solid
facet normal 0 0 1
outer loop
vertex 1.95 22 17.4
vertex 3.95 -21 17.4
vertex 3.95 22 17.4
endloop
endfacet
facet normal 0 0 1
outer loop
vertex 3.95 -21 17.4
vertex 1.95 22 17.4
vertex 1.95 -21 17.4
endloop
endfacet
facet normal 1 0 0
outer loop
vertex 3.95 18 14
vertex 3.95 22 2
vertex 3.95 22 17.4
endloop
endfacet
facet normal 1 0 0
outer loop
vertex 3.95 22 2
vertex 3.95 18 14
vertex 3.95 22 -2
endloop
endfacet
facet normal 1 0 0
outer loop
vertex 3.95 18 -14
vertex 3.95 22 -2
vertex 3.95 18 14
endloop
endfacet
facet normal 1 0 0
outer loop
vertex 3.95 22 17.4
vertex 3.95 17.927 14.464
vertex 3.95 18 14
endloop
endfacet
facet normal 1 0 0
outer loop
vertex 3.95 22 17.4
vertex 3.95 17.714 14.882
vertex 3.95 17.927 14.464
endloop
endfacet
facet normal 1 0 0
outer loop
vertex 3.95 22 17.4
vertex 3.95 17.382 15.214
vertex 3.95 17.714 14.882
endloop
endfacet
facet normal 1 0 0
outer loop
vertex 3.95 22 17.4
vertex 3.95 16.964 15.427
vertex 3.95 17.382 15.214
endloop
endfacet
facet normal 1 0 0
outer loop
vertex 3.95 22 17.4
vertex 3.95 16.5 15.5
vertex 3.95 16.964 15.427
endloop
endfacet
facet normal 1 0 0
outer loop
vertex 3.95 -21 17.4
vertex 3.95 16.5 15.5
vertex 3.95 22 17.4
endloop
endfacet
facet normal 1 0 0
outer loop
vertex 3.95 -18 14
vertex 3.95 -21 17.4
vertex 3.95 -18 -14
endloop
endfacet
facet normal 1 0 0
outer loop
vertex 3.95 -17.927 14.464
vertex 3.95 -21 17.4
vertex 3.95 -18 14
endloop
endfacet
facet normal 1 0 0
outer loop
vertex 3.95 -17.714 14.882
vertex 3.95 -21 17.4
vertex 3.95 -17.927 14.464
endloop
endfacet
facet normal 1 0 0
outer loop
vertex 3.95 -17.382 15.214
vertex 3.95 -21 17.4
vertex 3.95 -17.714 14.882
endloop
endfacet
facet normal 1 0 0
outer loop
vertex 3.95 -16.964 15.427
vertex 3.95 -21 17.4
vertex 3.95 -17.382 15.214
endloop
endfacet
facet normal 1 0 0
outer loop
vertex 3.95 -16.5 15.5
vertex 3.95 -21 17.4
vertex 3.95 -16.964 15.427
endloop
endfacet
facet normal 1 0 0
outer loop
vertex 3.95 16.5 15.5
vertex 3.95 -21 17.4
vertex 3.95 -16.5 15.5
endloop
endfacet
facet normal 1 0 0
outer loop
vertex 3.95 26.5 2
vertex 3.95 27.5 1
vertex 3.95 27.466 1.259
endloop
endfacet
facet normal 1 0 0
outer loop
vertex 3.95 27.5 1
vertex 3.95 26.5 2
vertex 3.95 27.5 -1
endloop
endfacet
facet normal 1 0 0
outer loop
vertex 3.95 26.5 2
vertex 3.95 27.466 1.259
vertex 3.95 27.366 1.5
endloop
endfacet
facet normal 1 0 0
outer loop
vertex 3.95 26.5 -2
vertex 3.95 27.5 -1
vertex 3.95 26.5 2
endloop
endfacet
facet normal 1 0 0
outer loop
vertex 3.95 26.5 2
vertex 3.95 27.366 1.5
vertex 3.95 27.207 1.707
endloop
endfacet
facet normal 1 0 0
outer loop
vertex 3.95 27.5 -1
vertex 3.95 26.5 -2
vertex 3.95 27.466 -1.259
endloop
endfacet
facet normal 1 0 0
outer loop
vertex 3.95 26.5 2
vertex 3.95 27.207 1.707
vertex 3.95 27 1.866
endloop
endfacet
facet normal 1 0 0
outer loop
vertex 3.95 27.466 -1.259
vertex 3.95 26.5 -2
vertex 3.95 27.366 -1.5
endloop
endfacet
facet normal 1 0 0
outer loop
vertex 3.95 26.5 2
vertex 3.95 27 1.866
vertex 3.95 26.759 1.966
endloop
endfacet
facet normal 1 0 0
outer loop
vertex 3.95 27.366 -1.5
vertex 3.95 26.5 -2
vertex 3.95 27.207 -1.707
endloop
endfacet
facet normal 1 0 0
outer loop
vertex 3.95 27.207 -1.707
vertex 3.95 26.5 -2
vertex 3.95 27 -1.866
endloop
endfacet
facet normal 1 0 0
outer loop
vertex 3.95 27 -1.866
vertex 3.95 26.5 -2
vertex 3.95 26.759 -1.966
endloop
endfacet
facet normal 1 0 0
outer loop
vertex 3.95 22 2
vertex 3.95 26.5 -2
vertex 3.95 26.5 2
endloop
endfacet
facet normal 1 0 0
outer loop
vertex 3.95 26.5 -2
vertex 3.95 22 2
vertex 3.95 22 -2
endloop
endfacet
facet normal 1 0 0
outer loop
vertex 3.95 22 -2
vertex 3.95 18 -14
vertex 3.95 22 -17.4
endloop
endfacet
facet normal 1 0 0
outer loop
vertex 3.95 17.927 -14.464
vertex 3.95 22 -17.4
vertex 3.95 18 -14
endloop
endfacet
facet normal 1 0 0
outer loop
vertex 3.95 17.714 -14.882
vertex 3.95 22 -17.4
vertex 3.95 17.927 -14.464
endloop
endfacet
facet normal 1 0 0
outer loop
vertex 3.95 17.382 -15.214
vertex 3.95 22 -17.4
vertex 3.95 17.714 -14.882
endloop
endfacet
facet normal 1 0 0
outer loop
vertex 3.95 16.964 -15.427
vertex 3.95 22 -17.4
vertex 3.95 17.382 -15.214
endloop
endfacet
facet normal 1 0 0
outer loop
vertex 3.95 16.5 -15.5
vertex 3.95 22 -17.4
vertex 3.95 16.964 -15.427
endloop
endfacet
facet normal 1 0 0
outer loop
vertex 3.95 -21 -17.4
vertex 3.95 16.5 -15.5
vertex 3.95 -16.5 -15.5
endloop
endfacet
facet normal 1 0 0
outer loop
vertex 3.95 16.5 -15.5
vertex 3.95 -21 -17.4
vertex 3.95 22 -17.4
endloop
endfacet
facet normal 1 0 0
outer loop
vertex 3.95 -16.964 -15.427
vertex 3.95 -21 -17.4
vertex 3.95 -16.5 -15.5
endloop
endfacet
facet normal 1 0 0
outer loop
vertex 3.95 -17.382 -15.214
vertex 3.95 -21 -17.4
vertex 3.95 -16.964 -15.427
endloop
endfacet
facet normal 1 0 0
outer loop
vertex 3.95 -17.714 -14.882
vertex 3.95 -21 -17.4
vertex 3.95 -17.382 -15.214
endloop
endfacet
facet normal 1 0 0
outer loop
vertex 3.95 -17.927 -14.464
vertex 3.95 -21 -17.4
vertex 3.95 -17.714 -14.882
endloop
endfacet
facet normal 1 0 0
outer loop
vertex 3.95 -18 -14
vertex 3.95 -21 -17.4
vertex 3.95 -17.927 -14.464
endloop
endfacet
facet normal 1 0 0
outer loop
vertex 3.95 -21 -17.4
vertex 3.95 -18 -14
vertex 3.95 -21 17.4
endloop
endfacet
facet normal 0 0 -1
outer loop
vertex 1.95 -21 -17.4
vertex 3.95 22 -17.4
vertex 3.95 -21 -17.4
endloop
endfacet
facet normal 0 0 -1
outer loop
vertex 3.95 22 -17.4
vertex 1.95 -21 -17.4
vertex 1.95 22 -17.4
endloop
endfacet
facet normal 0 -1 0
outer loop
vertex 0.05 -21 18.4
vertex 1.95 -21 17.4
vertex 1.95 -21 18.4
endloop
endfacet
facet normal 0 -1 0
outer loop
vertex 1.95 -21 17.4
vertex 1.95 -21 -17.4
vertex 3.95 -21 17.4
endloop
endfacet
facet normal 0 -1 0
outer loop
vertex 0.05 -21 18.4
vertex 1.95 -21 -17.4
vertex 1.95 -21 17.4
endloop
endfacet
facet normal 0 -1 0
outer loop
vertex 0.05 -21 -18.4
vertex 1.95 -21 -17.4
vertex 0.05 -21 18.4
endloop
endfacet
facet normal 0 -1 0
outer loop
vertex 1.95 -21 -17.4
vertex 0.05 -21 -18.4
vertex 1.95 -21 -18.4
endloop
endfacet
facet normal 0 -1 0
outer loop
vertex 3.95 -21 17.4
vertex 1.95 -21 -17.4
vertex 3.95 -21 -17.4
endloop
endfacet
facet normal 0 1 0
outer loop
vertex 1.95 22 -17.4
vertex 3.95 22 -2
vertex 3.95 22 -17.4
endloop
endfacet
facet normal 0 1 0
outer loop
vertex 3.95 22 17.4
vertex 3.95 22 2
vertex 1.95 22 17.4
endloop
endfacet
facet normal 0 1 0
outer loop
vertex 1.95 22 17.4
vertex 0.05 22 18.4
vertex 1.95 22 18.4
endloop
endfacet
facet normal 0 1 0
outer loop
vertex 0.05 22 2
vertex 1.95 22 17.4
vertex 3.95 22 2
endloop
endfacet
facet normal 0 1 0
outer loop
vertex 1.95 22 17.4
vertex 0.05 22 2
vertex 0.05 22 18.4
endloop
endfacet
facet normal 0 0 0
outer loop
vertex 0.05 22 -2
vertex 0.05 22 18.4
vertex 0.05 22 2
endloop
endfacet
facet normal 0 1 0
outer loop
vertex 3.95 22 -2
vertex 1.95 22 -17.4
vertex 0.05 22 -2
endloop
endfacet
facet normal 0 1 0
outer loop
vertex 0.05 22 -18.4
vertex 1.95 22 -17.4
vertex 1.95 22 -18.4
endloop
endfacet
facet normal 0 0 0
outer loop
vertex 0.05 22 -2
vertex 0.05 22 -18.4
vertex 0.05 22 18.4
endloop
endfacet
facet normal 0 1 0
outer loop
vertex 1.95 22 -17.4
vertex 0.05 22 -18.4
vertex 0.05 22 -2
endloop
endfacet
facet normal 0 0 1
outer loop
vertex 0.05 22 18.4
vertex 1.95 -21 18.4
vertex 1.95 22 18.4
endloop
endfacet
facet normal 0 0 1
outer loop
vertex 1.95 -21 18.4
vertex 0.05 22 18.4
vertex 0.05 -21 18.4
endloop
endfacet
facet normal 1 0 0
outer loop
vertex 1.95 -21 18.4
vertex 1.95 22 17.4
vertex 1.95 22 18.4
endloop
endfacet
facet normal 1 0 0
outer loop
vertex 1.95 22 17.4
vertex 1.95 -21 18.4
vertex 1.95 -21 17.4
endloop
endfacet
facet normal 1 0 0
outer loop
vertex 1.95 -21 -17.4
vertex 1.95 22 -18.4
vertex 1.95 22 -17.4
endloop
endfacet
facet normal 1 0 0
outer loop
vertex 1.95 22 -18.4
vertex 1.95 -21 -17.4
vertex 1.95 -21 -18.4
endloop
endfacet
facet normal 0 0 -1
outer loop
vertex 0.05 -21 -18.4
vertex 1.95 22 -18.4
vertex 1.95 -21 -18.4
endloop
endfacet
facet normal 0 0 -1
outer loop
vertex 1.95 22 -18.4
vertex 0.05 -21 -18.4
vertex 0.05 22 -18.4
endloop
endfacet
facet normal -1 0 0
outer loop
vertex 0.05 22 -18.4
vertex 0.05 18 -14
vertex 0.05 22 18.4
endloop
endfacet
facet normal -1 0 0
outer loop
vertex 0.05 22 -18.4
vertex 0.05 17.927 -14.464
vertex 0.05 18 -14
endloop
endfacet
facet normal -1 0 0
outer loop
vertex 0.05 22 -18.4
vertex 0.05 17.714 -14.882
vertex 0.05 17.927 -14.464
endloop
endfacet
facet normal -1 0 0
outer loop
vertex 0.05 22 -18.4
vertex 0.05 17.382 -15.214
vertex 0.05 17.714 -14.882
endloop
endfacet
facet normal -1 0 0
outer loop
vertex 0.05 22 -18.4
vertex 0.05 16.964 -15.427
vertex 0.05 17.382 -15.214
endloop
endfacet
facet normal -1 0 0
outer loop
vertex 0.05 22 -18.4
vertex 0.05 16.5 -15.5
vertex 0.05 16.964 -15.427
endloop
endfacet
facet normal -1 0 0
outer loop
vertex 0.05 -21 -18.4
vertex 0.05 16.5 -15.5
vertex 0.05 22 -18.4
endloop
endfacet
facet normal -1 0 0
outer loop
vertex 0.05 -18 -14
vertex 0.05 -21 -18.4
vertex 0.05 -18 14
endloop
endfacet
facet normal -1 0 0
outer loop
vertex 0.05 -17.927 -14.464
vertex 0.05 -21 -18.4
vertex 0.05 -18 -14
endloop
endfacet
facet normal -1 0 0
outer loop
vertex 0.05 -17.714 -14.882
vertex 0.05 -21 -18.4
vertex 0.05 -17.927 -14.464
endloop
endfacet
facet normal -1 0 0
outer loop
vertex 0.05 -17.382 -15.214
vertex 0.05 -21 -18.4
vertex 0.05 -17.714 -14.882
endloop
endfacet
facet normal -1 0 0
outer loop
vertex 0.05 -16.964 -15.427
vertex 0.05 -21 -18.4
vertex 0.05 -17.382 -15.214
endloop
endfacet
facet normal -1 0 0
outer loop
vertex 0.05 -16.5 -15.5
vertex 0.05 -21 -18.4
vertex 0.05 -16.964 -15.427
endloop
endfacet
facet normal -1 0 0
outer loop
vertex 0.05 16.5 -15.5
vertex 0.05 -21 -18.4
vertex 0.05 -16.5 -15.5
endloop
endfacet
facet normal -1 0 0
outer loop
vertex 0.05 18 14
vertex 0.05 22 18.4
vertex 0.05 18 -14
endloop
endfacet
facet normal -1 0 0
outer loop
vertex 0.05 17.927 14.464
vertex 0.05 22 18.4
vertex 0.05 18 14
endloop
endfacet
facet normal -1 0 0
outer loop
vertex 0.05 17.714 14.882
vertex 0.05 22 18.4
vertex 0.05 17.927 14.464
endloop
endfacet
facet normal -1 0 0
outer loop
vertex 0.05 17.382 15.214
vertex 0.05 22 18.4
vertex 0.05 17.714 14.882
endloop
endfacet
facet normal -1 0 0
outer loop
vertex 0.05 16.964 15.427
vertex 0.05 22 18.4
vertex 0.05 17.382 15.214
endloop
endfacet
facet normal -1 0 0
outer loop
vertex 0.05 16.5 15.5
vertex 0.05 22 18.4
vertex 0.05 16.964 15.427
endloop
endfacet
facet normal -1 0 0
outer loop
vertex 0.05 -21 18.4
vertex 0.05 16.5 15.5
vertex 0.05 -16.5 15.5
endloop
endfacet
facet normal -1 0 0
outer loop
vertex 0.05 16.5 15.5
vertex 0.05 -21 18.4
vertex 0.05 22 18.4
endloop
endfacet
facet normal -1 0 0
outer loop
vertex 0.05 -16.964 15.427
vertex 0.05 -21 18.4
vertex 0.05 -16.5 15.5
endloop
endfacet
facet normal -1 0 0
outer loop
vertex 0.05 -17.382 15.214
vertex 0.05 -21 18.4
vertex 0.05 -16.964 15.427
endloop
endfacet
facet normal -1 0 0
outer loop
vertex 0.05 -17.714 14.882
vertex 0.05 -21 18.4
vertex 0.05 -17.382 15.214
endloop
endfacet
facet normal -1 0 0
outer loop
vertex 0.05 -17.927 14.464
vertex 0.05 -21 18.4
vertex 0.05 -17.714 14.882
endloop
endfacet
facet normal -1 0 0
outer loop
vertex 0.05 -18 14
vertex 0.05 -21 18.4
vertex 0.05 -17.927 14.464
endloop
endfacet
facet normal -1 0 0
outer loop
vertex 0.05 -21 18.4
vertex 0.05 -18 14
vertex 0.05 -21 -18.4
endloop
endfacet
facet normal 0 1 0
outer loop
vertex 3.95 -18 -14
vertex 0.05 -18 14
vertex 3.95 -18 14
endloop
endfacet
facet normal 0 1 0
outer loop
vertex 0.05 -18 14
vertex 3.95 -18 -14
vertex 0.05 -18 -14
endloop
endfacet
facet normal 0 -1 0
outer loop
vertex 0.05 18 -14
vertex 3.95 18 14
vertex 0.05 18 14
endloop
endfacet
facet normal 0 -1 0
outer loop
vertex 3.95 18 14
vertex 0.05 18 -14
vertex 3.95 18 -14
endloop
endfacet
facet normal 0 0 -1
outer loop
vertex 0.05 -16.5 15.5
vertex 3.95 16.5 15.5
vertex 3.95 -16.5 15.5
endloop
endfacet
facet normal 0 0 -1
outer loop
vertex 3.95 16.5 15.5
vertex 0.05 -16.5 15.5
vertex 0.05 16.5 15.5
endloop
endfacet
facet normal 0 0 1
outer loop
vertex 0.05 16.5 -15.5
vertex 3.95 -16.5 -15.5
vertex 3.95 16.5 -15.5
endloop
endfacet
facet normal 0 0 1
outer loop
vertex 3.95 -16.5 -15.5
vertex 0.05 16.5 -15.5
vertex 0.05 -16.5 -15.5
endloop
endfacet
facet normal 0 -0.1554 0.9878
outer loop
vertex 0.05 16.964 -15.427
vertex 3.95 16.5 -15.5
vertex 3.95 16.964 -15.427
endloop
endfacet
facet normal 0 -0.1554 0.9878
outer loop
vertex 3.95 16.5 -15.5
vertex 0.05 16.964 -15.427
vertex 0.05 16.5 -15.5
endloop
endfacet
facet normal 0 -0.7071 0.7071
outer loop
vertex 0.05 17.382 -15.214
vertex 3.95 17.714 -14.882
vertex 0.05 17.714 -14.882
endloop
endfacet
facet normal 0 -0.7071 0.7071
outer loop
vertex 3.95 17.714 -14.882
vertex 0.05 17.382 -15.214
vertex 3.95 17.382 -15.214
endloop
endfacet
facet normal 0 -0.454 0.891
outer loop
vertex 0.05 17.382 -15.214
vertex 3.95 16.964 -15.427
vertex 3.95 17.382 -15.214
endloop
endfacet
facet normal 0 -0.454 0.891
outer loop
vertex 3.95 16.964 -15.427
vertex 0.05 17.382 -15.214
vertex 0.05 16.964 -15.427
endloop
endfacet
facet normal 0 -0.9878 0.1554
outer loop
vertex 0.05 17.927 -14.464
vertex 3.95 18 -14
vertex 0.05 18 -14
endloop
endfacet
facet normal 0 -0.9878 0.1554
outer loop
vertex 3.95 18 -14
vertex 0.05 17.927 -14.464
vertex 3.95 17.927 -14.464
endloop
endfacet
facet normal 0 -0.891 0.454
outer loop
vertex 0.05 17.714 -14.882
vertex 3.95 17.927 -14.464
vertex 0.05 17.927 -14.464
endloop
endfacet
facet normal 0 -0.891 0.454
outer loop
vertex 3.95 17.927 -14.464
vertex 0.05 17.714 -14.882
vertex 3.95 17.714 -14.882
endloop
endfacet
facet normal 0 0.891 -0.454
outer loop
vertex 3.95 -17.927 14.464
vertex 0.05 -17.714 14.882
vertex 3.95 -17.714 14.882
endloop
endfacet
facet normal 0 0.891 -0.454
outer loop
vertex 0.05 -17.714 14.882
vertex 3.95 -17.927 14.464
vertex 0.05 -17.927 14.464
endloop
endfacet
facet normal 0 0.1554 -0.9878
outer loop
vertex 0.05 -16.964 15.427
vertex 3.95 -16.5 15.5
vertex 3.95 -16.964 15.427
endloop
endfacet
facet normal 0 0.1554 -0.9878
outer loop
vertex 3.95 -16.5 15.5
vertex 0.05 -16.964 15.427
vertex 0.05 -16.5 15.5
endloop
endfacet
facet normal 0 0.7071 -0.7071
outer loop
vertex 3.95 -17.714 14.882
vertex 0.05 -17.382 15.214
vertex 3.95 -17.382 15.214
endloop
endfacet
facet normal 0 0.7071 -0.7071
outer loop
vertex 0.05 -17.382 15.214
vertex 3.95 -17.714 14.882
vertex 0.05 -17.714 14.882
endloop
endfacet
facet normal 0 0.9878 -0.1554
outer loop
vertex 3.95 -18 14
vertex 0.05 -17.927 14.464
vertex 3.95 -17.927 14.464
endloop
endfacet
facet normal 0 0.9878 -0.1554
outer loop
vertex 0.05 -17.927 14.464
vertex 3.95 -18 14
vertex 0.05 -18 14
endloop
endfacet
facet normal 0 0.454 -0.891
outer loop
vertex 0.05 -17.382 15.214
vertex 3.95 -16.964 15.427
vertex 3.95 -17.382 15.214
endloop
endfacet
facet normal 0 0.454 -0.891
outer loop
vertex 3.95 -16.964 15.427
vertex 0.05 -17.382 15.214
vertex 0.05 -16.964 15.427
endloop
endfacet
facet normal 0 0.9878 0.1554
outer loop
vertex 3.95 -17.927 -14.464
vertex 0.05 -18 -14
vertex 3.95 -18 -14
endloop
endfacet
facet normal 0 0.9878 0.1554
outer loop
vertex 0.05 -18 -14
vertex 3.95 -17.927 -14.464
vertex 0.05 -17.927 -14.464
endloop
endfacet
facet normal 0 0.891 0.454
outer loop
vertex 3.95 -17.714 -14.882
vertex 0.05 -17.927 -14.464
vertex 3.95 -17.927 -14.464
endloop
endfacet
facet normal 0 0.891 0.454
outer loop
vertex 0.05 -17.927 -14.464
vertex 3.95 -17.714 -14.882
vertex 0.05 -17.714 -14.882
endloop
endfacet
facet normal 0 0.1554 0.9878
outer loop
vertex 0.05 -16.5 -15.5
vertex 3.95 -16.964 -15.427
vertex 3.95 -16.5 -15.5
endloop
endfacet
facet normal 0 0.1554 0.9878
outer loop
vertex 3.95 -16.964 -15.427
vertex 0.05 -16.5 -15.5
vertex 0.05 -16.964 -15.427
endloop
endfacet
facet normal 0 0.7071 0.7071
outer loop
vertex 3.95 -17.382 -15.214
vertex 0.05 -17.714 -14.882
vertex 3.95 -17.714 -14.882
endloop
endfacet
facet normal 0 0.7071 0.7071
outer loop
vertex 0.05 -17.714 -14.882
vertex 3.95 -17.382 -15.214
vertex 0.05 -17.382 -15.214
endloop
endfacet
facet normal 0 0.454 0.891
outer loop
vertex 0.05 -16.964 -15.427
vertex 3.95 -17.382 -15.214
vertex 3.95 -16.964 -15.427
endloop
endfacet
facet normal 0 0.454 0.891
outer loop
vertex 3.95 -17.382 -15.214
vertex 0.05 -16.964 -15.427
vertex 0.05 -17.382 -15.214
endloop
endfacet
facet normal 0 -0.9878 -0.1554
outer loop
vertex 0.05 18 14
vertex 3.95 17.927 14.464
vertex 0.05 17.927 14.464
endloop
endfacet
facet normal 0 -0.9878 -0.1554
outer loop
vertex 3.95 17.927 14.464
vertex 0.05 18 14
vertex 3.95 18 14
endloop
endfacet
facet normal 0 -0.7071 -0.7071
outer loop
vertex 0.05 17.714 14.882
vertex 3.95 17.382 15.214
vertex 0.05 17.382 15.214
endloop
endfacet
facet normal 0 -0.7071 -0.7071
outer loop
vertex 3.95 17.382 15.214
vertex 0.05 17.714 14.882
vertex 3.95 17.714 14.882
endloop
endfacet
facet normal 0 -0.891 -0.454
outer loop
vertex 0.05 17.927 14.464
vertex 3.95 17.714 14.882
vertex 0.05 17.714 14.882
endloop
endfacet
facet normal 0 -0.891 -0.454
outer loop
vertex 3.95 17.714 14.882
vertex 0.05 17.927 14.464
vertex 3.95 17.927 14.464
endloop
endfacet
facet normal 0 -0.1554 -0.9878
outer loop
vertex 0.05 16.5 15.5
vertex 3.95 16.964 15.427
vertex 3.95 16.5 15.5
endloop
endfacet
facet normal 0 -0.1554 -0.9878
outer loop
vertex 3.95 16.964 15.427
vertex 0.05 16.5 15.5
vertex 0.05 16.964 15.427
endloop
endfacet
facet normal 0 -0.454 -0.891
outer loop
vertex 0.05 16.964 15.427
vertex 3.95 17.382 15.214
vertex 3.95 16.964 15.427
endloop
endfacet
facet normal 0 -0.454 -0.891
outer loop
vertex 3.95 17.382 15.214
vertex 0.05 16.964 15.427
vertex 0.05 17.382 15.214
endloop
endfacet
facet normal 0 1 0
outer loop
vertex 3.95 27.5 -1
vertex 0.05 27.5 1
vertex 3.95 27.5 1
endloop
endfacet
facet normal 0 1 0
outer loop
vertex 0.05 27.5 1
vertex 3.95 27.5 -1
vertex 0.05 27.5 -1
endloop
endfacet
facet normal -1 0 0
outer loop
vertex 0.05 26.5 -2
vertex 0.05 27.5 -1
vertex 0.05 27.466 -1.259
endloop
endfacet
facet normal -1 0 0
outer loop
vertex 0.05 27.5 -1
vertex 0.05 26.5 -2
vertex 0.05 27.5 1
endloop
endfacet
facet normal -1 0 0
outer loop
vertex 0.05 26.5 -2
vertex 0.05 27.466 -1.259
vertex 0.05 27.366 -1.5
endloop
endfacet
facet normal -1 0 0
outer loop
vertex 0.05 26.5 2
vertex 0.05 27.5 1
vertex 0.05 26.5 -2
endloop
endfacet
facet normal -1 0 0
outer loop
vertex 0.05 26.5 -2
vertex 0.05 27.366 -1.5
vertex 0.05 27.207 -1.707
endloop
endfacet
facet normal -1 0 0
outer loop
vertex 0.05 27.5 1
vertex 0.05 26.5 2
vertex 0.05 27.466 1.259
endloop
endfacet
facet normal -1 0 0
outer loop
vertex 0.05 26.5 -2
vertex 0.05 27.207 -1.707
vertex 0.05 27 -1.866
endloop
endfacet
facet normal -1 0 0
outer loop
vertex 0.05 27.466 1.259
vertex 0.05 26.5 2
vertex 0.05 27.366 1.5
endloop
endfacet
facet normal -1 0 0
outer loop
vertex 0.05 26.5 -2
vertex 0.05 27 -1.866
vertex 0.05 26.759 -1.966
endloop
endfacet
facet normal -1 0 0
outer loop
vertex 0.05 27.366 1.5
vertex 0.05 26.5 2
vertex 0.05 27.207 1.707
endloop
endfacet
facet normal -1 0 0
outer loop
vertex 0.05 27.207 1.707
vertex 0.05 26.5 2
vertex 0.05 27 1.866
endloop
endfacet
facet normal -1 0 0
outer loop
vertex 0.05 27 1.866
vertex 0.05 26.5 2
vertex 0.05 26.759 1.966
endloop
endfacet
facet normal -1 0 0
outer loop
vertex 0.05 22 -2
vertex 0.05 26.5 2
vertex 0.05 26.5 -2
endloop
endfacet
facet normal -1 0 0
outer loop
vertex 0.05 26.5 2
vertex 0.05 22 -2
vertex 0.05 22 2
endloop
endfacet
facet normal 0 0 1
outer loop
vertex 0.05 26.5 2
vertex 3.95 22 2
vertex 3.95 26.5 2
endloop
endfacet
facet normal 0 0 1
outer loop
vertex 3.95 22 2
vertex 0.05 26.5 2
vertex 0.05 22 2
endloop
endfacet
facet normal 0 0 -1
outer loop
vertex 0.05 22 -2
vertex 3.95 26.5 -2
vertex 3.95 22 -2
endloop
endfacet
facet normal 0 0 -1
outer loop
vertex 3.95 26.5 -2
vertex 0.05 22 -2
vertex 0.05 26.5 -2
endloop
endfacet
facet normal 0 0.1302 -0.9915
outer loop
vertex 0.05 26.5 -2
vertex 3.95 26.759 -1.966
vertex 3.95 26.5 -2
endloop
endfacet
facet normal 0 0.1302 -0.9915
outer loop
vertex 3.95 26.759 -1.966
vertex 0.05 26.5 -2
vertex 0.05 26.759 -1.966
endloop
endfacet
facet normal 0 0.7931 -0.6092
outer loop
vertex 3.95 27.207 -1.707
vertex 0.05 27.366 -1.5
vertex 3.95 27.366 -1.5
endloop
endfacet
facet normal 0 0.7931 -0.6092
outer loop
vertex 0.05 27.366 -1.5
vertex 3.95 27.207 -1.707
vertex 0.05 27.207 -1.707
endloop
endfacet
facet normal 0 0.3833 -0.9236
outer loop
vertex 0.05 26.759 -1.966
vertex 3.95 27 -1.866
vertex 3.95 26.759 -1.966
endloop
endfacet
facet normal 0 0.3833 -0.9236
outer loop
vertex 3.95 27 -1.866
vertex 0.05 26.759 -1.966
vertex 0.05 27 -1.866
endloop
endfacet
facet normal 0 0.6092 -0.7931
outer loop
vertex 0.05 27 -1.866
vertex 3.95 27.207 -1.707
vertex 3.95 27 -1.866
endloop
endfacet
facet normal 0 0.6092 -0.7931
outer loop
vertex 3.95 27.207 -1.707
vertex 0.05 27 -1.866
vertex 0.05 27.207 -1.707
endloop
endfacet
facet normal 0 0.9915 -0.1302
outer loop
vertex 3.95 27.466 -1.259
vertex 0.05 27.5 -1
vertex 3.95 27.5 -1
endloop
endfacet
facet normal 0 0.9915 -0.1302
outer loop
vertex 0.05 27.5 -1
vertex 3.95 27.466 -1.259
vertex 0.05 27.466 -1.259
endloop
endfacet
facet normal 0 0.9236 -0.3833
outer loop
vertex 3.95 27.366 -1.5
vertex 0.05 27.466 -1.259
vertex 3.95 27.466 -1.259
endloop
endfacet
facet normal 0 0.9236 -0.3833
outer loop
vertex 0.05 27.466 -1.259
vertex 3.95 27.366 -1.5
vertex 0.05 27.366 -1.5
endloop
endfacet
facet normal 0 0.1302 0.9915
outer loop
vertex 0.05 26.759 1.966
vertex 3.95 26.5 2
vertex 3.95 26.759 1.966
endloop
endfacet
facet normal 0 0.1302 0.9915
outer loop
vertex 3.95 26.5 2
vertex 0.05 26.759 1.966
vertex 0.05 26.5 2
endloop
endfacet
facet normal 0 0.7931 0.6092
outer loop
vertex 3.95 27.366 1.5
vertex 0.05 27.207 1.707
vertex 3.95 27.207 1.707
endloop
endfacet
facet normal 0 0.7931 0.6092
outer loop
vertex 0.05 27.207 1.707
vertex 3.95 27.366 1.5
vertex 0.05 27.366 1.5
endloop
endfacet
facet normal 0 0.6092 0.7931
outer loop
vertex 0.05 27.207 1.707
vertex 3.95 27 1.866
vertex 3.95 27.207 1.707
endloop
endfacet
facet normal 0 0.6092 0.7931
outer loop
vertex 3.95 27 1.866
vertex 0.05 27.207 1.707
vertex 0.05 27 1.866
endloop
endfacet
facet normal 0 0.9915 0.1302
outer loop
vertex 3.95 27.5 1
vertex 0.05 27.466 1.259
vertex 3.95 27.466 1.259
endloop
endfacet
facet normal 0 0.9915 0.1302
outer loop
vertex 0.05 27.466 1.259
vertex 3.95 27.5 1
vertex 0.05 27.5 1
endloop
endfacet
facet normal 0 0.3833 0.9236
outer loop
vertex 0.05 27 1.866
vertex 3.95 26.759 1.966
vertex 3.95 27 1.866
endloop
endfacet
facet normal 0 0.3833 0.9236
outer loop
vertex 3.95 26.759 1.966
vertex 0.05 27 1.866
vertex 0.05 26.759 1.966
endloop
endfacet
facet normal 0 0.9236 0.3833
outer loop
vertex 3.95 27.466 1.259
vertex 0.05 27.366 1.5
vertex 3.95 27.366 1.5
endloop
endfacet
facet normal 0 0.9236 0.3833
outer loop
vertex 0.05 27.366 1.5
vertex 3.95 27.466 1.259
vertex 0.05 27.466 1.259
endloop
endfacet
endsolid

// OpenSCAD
time = 0;

module rcube (cube_arr = [1, 1, 1], d = 0, center = true, $fn = $fn) {
  r = d/2;
  union () {
    cube([cube_arr[0] - d, cube_arr[1], cube_arr[2]], center = center);
    cube([cube_arr[0], cube_arr[1] - d, cube_arr[2]], center = center);
    translate ([1 * (cube_arr[0] / 2) - r , 1 * (cube_arr[1] / 2)- r, 0]) {
          cylinder(r = r, h = cube_arr[2], center = center);
        }
    translate ([-1 * (cube_arr[0] / 2) + r, -1 * (cube_arr[1] / 2) + r, 0]) {
          cylinder(r = r, h = cube_arr[2], center = center);
        }
    translate ([1 * (cube_arr[0] / 2) - r, -1 * (cube_arr[1] / 2) + r, 0]) {
          cylinder(r = r, h = cube_arr[2], center = center);
        }
    translate ([-1 * (cube_arr[0] / 2) + r, 1 * (cube_arr[1] / 2)- r, 0]) {
          cylinder(r = r, h = cube_arr[2], center = center);
        }
    }
}

module bolex_matte_box_insert () {
	X = 35;
    Y = 35; 
    FRAME = 10;
  	difference () {
        union() {
          translate([0, FRAME/4- 2, 5/2]) {
              cube([X - .2, Y + FRAME-2, 2.9], center = true);
          }
          translate([0, FRAME/4- 2, 1]) {
              cube([X + 2 - .2, Y + FRAME -2, 1.9], center = true);
          }
        }
    	
    	rcube([X - 4, Y + 1, 16], d = 3, center = true, $fn = 20);
    	//translate([0, 0, 3.5]) rcube([X - 1, Y + 4, 3], d = 2, center = true, $fn = 20); 
    }
  translate([0, 23, 2]) rcube([4, 9, 3.9], d = 2, center= true, $fn=24);
}

rotate([0, 90, time]) bolex_matte_box_insert();
